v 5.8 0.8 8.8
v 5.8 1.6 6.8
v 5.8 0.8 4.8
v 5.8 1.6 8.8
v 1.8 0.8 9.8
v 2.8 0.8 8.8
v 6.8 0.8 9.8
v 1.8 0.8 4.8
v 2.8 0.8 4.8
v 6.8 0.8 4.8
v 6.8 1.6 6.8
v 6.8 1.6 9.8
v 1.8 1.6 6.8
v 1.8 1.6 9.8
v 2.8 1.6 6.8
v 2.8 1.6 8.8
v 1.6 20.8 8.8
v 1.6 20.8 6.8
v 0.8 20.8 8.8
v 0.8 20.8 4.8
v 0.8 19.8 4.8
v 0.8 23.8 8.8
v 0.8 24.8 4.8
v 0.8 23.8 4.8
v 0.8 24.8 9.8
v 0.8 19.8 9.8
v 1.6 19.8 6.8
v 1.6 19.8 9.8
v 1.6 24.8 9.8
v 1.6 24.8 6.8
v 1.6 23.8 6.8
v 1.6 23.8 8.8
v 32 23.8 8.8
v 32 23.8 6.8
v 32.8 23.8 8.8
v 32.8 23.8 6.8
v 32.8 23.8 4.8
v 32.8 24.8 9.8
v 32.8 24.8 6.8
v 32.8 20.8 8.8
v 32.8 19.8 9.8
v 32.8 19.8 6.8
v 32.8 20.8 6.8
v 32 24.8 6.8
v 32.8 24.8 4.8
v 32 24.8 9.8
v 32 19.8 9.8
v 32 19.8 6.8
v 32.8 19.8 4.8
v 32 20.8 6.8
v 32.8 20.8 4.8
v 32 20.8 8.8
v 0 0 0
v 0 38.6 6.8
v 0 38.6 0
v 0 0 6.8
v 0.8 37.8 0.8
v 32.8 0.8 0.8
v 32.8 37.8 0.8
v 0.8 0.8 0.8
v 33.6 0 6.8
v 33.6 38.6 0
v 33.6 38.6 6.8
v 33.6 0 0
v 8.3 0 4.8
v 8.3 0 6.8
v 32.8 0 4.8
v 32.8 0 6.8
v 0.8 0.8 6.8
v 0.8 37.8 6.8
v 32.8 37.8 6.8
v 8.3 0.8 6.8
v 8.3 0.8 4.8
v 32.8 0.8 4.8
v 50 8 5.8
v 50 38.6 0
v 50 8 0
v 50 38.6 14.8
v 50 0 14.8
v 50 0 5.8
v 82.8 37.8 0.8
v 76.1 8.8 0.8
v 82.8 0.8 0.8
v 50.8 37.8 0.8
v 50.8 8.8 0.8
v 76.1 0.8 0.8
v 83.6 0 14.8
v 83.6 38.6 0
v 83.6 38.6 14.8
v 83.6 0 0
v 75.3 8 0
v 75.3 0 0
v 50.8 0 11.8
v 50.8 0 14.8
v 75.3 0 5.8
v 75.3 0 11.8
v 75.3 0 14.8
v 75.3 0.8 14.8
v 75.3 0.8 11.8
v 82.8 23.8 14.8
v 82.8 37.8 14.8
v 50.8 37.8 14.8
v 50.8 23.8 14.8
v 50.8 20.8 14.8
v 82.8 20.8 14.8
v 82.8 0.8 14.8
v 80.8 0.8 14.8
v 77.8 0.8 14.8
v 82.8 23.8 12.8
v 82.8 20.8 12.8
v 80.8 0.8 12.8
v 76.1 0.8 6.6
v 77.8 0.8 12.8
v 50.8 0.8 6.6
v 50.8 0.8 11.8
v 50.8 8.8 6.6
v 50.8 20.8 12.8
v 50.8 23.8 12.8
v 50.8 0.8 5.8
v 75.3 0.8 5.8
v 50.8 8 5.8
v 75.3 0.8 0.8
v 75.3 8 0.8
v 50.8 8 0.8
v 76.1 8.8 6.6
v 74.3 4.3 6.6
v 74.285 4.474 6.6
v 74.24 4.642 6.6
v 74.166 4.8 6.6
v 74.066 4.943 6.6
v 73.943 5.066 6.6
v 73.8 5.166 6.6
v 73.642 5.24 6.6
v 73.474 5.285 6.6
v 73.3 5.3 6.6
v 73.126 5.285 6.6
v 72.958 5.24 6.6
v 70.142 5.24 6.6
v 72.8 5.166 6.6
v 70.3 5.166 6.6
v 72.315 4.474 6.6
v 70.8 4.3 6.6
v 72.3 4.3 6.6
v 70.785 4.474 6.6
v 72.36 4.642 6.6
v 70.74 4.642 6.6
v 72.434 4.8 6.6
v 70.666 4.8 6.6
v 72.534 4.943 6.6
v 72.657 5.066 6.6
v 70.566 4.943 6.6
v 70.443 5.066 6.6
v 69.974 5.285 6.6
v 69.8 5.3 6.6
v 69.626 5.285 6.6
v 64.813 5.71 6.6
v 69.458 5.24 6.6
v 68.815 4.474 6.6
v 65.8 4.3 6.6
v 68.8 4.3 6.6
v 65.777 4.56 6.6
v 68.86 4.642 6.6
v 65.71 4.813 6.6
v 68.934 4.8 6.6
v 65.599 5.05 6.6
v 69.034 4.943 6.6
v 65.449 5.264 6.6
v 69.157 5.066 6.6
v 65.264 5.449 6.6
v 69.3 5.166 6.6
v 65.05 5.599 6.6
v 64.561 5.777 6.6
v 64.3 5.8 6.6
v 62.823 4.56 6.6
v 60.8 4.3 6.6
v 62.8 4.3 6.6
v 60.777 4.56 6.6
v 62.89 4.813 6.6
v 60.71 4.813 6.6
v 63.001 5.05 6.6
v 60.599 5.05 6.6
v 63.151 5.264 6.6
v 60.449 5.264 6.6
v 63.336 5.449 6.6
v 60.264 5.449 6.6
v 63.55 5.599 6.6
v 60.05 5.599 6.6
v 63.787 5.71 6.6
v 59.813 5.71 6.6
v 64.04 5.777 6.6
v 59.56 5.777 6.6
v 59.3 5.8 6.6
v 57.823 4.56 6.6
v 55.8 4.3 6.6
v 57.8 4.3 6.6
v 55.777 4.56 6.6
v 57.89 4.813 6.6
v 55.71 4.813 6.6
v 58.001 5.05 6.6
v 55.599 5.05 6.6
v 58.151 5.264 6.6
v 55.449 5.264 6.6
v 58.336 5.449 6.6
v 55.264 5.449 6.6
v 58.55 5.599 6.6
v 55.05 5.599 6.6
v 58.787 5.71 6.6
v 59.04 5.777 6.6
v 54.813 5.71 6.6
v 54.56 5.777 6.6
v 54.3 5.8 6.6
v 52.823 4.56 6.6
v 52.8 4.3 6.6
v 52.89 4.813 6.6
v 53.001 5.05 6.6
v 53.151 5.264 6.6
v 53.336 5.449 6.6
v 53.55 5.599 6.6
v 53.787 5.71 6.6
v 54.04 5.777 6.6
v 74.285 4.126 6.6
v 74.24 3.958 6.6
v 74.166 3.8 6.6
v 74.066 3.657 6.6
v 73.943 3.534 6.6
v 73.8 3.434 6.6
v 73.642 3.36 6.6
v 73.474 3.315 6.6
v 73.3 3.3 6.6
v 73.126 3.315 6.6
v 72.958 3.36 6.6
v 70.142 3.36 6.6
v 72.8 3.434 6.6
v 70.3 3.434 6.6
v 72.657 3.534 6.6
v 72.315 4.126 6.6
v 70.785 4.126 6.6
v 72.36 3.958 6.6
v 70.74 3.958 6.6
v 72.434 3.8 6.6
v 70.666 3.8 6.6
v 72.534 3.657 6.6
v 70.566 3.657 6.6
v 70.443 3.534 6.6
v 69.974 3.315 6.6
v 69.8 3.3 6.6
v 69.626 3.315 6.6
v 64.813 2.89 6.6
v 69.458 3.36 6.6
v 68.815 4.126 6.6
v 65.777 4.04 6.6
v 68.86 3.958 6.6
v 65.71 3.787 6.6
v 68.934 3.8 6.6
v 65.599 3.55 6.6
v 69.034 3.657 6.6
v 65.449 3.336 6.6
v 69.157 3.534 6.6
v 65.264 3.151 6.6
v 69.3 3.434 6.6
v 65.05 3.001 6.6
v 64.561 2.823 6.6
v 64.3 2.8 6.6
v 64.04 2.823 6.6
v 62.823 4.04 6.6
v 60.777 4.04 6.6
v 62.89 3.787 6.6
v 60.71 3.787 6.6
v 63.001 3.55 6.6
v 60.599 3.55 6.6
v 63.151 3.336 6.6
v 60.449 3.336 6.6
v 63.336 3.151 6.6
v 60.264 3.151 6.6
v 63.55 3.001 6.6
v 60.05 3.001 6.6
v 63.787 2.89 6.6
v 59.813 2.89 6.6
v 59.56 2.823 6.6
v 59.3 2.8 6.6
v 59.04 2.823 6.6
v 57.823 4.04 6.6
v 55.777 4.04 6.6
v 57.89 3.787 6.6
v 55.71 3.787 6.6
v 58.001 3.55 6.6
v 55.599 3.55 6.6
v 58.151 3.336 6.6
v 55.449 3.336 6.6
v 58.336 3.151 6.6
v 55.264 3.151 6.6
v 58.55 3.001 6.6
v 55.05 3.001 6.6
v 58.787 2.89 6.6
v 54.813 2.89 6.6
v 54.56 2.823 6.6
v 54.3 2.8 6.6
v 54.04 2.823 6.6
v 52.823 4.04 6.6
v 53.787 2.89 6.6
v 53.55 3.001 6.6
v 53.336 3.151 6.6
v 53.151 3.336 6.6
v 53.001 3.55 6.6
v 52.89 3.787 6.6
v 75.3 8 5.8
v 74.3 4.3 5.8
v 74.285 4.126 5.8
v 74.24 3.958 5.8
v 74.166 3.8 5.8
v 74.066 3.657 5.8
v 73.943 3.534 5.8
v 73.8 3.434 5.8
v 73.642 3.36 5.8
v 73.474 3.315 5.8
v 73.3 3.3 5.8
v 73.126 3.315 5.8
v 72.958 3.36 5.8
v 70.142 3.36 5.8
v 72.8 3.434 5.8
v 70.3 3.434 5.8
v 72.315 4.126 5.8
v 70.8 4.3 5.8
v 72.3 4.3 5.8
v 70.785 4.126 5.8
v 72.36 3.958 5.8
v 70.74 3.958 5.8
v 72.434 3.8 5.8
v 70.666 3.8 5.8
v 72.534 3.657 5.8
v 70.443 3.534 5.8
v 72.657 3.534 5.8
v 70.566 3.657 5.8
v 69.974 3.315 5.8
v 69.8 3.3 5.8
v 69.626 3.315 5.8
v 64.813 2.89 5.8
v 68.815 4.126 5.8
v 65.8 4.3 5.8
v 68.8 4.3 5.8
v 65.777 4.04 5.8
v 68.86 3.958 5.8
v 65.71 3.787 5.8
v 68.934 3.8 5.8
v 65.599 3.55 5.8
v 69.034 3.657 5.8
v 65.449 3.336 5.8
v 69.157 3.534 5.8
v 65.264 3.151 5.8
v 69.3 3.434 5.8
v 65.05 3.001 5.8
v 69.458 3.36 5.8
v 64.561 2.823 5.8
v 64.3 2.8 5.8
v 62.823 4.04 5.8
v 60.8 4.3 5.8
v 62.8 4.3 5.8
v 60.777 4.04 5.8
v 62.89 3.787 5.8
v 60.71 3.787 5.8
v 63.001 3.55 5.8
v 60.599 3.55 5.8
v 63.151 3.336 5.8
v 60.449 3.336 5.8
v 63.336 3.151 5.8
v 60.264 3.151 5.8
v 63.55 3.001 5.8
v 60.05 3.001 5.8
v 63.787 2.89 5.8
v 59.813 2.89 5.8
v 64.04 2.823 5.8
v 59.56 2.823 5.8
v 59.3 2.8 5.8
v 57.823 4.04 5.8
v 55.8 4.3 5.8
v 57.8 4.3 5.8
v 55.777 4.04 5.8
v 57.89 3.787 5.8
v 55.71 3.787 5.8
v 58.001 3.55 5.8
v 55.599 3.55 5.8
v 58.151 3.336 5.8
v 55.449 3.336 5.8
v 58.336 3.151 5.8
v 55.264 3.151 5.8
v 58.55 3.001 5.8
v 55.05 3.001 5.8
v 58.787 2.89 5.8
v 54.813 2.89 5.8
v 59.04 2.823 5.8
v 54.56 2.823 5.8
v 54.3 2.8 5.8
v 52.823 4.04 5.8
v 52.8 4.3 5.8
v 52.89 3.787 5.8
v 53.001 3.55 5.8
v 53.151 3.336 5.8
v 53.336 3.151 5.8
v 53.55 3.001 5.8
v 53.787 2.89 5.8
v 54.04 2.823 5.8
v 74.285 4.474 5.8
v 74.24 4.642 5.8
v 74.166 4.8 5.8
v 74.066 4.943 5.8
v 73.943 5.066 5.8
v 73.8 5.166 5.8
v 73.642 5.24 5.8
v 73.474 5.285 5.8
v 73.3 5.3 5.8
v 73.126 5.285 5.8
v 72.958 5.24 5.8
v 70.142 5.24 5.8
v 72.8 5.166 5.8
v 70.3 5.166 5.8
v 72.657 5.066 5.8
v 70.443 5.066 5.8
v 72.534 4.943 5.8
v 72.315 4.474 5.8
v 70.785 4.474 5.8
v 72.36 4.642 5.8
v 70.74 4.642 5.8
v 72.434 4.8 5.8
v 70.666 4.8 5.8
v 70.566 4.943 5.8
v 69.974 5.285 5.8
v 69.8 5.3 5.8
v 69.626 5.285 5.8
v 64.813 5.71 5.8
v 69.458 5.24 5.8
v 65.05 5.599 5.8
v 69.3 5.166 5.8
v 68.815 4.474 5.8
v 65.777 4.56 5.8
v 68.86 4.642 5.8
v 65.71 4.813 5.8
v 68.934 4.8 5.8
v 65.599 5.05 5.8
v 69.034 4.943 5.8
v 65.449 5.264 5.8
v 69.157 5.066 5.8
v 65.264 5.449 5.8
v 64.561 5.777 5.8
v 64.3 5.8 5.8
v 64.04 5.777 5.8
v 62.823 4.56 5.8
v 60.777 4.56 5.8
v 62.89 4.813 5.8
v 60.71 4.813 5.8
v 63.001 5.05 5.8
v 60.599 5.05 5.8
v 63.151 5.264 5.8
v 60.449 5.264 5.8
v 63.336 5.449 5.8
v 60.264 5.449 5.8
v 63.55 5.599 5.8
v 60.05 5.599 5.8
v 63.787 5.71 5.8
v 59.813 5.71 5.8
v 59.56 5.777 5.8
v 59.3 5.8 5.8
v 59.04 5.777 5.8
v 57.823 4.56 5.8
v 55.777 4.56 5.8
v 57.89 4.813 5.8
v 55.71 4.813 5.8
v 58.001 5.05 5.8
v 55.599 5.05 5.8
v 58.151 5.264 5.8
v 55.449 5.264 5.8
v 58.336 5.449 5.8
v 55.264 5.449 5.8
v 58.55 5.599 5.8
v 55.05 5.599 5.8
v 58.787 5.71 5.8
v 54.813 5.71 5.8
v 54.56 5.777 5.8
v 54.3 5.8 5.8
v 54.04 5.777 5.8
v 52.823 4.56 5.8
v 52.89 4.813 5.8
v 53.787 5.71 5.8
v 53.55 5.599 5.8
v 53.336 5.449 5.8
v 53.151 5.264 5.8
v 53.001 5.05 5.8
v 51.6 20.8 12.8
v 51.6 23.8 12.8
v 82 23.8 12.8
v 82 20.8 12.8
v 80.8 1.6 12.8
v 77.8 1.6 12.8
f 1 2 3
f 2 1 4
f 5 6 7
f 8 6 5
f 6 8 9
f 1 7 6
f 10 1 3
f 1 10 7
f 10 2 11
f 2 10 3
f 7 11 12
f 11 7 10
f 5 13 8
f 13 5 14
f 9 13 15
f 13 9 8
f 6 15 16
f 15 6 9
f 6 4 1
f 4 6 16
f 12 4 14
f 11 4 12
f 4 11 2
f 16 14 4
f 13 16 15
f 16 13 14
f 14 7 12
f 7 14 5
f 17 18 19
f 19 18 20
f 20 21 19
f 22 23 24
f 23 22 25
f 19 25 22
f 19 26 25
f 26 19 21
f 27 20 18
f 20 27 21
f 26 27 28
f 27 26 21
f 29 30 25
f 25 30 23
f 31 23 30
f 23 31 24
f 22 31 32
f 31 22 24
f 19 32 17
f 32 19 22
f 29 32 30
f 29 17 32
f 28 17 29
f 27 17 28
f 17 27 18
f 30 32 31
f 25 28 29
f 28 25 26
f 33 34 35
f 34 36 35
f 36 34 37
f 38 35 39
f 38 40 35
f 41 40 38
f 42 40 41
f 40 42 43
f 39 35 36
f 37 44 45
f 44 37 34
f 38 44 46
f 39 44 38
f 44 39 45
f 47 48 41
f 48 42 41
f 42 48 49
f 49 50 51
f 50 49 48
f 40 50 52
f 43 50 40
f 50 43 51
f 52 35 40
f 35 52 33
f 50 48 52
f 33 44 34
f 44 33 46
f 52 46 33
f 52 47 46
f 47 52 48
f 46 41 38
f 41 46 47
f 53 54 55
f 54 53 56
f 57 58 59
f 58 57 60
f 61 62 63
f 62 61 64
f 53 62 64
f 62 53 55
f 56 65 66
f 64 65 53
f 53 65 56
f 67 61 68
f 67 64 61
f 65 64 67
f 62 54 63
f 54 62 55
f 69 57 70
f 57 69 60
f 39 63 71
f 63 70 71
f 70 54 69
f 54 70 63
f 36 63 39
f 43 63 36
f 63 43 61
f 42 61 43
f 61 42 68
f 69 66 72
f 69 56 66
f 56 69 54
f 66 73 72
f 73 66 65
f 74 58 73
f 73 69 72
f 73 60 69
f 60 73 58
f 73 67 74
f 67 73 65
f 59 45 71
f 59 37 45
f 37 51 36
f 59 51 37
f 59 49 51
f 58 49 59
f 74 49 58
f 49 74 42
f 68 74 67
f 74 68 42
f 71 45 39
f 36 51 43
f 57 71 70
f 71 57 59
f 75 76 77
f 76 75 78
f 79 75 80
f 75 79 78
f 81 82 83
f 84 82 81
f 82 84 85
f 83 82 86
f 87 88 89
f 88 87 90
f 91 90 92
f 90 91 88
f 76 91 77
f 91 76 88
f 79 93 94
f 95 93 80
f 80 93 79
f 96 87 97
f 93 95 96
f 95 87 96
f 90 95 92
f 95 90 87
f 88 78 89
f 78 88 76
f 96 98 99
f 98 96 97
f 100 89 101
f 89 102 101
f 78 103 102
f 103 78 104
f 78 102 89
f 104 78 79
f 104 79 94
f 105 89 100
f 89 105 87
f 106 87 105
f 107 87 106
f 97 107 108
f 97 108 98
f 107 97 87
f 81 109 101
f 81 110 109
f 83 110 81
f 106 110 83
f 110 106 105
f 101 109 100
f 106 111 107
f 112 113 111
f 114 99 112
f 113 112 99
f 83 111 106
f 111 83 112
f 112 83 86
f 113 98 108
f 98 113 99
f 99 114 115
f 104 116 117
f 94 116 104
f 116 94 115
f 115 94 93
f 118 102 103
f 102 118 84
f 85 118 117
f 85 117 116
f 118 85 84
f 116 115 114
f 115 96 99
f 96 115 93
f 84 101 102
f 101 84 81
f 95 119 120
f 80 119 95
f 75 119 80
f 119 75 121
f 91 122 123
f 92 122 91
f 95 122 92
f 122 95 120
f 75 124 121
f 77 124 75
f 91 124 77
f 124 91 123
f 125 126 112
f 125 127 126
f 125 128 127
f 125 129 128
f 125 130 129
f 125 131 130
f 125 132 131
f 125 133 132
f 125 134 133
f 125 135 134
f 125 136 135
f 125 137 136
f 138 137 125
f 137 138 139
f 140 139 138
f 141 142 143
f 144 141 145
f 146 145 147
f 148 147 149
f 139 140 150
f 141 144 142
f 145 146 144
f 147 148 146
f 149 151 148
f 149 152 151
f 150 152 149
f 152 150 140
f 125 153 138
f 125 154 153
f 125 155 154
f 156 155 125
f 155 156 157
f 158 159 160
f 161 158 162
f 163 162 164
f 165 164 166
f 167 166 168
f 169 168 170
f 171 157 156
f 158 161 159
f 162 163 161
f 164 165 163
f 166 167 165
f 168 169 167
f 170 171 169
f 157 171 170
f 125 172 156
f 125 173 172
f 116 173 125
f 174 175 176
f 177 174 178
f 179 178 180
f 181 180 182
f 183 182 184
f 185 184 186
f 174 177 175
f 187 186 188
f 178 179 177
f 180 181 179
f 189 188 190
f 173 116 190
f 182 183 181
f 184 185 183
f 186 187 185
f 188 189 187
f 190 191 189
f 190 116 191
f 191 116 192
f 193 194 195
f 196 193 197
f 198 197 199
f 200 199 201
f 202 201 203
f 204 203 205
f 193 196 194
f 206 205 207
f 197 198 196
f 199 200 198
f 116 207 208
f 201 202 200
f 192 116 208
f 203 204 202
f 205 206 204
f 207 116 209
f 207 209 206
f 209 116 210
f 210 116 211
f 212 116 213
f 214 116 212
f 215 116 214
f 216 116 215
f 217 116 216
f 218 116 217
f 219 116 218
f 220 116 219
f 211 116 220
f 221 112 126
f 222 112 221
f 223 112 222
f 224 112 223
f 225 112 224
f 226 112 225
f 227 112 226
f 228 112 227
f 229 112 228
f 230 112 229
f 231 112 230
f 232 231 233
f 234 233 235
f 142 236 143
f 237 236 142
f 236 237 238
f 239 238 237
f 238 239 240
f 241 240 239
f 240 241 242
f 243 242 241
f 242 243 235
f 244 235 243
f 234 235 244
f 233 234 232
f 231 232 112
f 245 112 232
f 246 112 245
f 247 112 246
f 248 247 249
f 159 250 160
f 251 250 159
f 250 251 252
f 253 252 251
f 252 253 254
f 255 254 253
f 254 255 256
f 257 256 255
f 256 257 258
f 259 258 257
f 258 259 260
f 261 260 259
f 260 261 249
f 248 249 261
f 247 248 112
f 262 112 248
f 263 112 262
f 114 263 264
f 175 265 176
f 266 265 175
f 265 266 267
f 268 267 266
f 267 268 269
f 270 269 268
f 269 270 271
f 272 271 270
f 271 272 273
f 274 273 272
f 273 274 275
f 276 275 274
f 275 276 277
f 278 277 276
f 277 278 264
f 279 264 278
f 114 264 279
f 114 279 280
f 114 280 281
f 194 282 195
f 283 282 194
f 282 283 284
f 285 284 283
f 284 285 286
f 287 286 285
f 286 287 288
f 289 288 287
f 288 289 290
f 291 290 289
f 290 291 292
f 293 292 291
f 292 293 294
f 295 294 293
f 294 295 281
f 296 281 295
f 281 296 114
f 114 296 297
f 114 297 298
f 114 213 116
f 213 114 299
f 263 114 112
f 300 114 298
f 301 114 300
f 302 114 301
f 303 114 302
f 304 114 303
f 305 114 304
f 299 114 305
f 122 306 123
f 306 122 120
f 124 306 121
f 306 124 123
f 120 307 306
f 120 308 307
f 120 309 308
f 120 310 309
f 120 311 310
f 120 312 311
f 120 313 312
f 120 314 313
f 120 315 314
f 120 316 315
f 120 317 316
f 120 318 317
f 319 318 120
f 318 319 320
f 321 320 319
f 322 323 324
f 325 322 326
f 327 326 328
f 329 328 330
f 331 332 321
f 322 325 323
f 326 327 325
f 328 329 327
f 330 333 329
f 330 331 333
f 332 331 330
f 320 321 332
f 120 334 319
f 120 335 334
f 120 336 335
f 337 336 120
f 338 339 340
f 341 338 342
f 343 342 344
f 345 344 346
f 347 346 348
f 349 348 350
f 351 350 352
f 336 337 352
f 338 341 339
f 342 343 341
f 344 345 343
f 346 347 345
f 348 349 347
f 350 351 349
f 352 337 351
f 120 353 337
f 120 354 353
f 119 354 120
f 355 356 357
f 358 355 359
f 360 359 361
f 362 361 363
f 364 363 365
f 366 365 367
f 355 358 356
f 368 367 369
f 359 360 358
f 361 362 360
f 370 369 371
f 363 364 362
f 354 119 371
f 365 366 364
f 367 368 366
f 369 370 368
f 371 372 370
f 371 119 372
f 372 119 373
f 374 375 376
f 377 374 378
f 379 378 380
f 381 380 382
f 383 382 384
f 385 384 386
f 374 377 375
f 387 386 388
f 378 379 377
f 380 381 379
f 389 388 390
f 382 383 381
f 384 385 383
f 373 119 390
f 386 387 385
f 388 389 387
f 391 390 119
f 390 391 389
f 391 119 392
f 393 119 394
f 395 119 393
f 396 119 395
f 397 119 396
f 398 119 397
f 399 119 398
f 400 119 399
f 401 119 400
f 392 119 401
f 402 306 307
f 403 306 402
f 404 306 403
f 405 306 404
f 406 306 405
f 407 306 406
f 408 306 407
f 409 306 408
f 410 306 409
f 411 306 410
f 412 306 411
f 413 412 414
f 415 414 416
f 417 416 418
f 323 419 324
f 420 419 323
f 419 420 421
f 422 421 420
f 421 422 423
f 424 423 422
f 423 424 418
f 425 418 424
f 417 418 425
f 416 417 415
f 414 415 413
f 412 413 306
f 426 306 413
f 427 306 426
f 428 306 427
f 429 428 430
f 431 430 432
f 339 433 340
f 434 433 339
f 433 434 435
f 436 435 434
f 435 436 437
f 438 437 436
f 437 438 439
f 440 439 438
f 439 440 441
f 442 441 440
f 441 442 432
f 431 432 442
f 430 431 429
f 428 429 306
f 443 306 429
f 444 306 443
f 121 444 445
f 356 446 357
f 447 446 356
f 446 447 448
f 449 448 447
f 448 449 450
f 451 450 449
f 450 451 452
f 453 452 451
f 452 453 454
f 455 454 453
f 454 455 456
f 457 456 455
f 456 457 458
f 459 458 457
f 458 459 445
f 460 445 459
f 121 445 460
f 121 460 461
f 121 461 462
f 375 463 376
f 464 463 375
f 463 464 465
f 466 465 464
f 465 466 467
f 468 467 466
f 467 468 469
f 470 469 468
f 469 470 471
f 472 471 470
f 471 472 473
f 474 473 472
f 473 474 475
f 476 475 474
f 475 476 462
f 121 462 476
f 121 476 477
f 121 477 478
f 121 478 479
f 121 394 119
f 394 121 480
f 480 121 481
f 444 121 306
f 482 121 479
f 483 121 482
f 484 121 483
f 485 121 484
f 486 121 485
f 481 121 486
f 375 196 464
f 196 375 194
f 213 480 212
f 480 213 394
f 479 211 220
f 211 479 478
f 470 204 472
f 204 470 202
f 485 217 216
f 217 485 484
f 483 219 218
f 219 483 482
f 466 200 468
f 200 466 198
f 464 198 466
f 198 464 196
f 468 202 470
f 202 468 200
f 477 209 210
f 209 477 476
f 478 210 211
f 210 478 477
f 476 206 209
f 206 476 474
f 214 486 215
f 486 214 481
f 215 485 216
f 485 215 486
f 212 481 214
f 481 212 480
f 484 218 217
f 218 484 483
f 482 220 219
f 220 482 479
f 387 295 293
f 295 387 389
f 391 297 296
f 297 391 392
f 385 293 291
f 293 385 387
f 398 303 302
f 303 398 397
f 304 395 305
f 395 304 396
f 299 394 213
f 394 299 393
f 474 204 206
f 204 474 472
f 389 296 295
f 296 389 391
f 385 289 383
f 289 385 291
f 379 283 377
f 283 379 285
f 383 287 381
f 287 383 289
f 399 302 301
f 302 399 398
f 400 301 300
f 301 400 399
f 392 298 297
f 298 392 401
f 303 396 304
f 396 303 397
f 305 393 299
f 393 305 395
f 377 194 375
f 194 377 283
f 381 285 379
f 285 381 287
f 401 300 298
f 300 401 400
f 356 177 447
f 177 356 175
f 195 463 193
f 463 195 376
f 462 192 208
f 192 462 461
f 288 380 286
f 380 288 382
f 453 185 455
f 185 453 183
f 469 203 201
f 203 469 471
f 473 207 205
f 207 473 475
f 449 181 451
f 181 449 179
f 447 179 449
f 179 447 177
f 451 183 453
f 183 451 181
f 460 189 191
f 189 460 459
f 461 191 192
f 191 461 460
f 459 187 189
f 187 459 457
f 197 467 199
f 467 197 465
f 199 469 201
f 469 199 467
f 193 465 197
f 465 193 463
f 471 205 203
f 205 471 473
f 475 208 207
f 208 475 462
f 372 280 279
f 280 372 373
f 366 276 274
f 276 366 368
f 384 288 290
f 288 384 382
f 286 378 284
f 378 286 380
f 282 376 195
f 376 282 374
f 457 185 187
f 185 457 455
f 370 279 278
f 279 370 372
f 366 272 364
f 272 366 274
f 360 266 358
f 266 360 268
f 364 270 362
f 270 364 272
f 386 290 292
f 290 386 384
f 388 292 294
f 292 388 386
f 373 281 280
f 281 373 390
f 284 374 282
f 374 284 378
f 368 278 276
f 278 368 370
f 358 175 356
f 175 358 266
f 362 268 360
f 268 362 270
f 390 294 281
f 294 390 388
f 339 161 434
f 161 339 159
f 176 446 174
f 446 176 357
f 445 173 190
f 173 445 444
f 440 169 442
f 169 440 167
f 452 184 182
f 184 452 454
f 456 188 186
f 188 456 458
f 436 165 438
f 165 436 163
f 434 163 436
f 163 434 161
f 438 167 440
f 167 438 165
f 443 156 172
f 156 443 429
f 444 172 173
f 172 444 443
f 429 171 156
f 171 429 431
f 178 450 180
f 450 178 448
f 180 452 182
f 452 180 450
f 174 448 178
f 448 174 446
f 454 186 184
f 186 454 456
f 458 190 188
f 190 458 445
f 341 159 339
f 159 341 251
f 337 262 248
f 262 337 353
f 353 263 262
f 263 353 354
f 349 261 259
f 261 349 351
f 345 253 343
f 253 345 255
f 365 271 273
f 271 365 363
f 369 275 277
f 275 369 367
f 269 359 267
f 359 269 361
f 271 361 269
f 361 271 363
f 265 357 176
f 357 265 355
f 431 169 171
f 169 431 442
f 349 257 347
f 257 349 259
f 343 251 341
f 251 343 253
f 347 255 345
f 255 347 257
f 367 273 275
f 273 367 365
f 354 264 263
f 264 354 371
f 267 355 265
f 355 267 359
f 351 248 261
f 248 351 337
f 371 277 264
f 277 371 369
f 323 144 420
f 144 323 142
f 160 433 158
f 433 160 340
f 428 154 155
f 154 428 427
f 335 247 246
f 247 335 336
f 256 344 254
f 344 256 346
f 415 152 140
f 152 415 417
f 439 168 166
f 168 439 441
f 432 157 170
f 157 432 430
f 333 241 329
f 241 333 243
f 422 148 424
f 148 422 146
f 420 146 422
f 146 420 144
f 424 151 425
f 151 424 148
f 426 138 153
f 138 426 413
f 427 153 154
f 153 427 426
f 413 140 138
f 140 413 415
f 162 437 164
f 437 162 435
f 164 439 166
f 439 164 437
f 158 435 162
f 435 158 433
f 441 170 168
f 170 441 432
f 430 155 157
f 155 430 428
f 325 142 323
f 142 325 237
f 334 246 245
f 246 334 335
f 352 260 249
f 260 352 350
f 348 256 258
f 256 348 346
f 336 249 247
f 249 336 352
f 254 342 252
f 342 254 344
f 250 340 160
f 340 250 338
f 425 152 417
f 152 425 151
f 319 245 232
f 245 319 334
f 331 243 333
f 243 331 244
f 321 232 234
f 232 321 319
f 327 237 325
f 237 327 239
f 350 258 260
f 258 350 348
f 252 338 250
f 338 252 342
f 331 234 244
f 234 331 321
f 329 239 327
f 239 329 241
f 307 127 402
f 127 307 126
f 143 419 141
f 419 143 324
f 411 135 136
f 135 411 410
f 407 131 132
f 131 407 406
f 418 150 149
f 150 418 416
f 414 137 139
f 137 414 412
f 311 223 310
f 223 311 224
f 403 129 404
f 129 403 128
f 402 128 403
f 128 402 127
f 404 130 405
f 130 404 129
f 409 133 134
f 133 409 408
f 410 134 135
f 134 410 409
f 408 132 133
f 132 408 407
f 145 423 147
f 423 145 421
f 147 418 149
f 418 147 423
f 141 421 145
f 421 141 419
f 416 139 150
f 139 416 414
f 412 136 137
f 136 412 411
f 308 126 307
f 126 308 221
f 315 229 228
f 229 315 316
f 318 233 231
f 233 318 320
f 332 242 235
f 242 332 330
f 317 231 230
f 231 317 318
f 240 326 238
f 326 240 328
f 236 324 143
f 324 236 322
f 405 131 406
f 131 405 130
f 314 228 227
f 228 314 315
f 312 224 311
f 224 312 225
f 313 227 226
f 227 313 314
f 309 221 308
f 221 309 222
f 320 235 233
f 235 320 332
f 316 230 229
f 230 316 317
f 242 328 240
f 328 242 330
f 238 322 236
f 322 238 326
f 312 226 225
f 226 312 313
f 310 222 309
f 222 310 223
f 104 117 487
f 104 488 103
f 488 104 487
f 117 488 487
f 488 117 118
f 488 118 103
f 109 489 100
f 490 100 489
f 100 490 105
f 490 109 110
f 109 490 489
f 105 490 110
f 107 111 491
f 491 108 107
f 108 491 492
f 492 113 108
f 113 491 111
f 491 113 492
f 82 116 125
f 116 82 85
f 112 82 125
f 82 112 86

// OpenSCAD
box_size = [32, 37, 20];
wall_width = 0.8;
bottom_height = 6;
$fn = 36;

module tab()
{
  translate([0, 1, 0]) rotate([90, 0, 0]) linear_extrude(height = 1) polygon([[0, 0], [0, 2], [wall_width, 2]]);
  translate([0, 5, 0]) rotate([90, 0, 0]) linear_extrude(height = 1) polygon([[0, 0], [0, 2], [wall_width, 2]]);
  translate([0, 0, 2]) cube([wall_width, 1, 2]);
  translate([0, 4, 2]) cube([wall_width, 1, 2]);
  translate([0, 0, 4]) cube([wall_width, 5, 1]);
}

module bulge()
{
   rotate([-90, 0, 0]) linear_extrude(height = 3) polygon([[0, 0], [0, 2], [wall_width, 2]]);
}

module box()
{
  /* Base */
  cube(box_size + [wall_width * 2, wall_width * 2, wall_width - box_size[2]]);
  /* Walls */
  translate([wall_width, 0, wall_width]) cube([7.5, wall_width, bottom_height]);
  translate([7.5 + wall_width, 0, wall_width]) cube([box_size[0] - 7.5, wall_width, 4]);
  translate([wall_width, box_size[1] + wall_width, wall_width]) cube([box_size[0], wall_width, bottom_height]);
  translate([0, 0, wall_width]) cube([wall_width, box_size[1] + (2 * wall_width), bottom_height]);
  translate([box_size[0] + wall_width, 0, wall_width]) cube([wall_width, box_size[1] + (2 * wall_width), bottom_height]);
  /* Tabs */
  translate([wall_width + 6, wall_width, wall_width + 4]) rotate([0, 0, 90]) tab();
  translate([wall_width, wall_width + 19, wall_width + 4]) tab();
  translate([wall_width + box_size[0], wall_width + 24, wall_width + 4]) rotate([0, 0, -180]) tab();
}

module cover()
{
  difference()
  {
    union()
    {
      /* Base */
      cube(box_size + [wall_width * 2, wall_width * 2, wall_width - box_size[2]]);
      /* Walls */
      translate([box_size[0] - 7.5 + wall_width, 0, wall_width]) cube([7.5, wall_width, box_size[2] - bottom_height]);
      translate([wall_width, 0, wall_width]) cube([box_size[0] - 7.5, wall_width, box_size[2] - bottom_height - 3]);
      translate([wall_width, box_size[1] + wall_width, wall_width]) cube([box_size[0], wall_width,  box_size[2] - bottom_height]);
      translate([0, 0, wall_width]) cube([wall_width, box_size[1] + (wall_width * 2),  box_size[2] - bottom_height]);
      translate([box_size[0] + wall_width, 0, wall_width]) cube([wall_width, box_size[1] + (wall_width * 2),  box_size[2] - bottom_height]);
    }
    /* Terminals cut-out */
    cube([box_size[0] - 7.5 + wall_width, 8, wall_width + 5]);
  }
  /* Extra walls */
  //translate([wall_width, 7, wall_width]) cube([27, wall_width, 5.5]);
  //translate([27, wall_width, wall_width]) cube([wall_width, 7, 15.5]);
  //cube([27, 7, wall_width + 3]);
  translate([wall_width, wall_width + 20, wall_width + box_size[2] - bottom_height]) bulge();
  translate([wall_width + box_size[0], wall_width + 23, wall_width + box_size[2] - bottom_height]) rotate([0, 0, -180]) bulge();
  translate([3 + wall_width + box_size[0] - 5, wall_width, wall_width + box_size[2] - bottom_height]) rotate([0, 0, 90]) bulge();
  difference()
  {
    translate([wall_width, wall_width, wall_width + 5]) cube([box_size[0] - 7.5, 8 - wall_width, wall_width]);
    translate([wall_width + 3.5, wall_width + 3.5, wall_width + 5]) cylinder(r = 1.5, h = wall_width);
    translate([wall_width + 8.5, wall_width + 3.5, wall_width + 5]) cylinder(r = 1.5, h = wall_width);
    translate([wall_width + 13.5, wall_width + 3.5, wall_width + 5]) cylinder(r = 1.5, h = wall_width);
    translate([wall_width + 19, wall_width + 3.5, wall_width + 5]) cylinder(r = 1, h = wall_width);
    translate([wall_width + 22.5, wall_width + 3.5, wall_width + 5]) cylinder(r = 1, h = wall_width);
  }
  translate([wall_width, 8, wall_width]) cube([box_size[0] - 7.5, wall_width, 5 + wall_width]);
  translate([wall_width + box_size[0] - 7.5, wall_width, wall_width]) cube([wall_width, 8, 5 + wall_width]);
  //translate([wall_width + 24.5, 0, 10])
  //translate([wall_width + 24.5, 5, 6])
  //rotate([90, 180, 0]) linear_extrude(0.5) text("S1 S2 OUT  L    C", size = 2);
}

box();
translate([50, 0, 0])
//translate([box_size[0] + wall_width * 2, 0, box_size[2] + wall_width * 2]) rotate([0, 180, 0])
cover();
